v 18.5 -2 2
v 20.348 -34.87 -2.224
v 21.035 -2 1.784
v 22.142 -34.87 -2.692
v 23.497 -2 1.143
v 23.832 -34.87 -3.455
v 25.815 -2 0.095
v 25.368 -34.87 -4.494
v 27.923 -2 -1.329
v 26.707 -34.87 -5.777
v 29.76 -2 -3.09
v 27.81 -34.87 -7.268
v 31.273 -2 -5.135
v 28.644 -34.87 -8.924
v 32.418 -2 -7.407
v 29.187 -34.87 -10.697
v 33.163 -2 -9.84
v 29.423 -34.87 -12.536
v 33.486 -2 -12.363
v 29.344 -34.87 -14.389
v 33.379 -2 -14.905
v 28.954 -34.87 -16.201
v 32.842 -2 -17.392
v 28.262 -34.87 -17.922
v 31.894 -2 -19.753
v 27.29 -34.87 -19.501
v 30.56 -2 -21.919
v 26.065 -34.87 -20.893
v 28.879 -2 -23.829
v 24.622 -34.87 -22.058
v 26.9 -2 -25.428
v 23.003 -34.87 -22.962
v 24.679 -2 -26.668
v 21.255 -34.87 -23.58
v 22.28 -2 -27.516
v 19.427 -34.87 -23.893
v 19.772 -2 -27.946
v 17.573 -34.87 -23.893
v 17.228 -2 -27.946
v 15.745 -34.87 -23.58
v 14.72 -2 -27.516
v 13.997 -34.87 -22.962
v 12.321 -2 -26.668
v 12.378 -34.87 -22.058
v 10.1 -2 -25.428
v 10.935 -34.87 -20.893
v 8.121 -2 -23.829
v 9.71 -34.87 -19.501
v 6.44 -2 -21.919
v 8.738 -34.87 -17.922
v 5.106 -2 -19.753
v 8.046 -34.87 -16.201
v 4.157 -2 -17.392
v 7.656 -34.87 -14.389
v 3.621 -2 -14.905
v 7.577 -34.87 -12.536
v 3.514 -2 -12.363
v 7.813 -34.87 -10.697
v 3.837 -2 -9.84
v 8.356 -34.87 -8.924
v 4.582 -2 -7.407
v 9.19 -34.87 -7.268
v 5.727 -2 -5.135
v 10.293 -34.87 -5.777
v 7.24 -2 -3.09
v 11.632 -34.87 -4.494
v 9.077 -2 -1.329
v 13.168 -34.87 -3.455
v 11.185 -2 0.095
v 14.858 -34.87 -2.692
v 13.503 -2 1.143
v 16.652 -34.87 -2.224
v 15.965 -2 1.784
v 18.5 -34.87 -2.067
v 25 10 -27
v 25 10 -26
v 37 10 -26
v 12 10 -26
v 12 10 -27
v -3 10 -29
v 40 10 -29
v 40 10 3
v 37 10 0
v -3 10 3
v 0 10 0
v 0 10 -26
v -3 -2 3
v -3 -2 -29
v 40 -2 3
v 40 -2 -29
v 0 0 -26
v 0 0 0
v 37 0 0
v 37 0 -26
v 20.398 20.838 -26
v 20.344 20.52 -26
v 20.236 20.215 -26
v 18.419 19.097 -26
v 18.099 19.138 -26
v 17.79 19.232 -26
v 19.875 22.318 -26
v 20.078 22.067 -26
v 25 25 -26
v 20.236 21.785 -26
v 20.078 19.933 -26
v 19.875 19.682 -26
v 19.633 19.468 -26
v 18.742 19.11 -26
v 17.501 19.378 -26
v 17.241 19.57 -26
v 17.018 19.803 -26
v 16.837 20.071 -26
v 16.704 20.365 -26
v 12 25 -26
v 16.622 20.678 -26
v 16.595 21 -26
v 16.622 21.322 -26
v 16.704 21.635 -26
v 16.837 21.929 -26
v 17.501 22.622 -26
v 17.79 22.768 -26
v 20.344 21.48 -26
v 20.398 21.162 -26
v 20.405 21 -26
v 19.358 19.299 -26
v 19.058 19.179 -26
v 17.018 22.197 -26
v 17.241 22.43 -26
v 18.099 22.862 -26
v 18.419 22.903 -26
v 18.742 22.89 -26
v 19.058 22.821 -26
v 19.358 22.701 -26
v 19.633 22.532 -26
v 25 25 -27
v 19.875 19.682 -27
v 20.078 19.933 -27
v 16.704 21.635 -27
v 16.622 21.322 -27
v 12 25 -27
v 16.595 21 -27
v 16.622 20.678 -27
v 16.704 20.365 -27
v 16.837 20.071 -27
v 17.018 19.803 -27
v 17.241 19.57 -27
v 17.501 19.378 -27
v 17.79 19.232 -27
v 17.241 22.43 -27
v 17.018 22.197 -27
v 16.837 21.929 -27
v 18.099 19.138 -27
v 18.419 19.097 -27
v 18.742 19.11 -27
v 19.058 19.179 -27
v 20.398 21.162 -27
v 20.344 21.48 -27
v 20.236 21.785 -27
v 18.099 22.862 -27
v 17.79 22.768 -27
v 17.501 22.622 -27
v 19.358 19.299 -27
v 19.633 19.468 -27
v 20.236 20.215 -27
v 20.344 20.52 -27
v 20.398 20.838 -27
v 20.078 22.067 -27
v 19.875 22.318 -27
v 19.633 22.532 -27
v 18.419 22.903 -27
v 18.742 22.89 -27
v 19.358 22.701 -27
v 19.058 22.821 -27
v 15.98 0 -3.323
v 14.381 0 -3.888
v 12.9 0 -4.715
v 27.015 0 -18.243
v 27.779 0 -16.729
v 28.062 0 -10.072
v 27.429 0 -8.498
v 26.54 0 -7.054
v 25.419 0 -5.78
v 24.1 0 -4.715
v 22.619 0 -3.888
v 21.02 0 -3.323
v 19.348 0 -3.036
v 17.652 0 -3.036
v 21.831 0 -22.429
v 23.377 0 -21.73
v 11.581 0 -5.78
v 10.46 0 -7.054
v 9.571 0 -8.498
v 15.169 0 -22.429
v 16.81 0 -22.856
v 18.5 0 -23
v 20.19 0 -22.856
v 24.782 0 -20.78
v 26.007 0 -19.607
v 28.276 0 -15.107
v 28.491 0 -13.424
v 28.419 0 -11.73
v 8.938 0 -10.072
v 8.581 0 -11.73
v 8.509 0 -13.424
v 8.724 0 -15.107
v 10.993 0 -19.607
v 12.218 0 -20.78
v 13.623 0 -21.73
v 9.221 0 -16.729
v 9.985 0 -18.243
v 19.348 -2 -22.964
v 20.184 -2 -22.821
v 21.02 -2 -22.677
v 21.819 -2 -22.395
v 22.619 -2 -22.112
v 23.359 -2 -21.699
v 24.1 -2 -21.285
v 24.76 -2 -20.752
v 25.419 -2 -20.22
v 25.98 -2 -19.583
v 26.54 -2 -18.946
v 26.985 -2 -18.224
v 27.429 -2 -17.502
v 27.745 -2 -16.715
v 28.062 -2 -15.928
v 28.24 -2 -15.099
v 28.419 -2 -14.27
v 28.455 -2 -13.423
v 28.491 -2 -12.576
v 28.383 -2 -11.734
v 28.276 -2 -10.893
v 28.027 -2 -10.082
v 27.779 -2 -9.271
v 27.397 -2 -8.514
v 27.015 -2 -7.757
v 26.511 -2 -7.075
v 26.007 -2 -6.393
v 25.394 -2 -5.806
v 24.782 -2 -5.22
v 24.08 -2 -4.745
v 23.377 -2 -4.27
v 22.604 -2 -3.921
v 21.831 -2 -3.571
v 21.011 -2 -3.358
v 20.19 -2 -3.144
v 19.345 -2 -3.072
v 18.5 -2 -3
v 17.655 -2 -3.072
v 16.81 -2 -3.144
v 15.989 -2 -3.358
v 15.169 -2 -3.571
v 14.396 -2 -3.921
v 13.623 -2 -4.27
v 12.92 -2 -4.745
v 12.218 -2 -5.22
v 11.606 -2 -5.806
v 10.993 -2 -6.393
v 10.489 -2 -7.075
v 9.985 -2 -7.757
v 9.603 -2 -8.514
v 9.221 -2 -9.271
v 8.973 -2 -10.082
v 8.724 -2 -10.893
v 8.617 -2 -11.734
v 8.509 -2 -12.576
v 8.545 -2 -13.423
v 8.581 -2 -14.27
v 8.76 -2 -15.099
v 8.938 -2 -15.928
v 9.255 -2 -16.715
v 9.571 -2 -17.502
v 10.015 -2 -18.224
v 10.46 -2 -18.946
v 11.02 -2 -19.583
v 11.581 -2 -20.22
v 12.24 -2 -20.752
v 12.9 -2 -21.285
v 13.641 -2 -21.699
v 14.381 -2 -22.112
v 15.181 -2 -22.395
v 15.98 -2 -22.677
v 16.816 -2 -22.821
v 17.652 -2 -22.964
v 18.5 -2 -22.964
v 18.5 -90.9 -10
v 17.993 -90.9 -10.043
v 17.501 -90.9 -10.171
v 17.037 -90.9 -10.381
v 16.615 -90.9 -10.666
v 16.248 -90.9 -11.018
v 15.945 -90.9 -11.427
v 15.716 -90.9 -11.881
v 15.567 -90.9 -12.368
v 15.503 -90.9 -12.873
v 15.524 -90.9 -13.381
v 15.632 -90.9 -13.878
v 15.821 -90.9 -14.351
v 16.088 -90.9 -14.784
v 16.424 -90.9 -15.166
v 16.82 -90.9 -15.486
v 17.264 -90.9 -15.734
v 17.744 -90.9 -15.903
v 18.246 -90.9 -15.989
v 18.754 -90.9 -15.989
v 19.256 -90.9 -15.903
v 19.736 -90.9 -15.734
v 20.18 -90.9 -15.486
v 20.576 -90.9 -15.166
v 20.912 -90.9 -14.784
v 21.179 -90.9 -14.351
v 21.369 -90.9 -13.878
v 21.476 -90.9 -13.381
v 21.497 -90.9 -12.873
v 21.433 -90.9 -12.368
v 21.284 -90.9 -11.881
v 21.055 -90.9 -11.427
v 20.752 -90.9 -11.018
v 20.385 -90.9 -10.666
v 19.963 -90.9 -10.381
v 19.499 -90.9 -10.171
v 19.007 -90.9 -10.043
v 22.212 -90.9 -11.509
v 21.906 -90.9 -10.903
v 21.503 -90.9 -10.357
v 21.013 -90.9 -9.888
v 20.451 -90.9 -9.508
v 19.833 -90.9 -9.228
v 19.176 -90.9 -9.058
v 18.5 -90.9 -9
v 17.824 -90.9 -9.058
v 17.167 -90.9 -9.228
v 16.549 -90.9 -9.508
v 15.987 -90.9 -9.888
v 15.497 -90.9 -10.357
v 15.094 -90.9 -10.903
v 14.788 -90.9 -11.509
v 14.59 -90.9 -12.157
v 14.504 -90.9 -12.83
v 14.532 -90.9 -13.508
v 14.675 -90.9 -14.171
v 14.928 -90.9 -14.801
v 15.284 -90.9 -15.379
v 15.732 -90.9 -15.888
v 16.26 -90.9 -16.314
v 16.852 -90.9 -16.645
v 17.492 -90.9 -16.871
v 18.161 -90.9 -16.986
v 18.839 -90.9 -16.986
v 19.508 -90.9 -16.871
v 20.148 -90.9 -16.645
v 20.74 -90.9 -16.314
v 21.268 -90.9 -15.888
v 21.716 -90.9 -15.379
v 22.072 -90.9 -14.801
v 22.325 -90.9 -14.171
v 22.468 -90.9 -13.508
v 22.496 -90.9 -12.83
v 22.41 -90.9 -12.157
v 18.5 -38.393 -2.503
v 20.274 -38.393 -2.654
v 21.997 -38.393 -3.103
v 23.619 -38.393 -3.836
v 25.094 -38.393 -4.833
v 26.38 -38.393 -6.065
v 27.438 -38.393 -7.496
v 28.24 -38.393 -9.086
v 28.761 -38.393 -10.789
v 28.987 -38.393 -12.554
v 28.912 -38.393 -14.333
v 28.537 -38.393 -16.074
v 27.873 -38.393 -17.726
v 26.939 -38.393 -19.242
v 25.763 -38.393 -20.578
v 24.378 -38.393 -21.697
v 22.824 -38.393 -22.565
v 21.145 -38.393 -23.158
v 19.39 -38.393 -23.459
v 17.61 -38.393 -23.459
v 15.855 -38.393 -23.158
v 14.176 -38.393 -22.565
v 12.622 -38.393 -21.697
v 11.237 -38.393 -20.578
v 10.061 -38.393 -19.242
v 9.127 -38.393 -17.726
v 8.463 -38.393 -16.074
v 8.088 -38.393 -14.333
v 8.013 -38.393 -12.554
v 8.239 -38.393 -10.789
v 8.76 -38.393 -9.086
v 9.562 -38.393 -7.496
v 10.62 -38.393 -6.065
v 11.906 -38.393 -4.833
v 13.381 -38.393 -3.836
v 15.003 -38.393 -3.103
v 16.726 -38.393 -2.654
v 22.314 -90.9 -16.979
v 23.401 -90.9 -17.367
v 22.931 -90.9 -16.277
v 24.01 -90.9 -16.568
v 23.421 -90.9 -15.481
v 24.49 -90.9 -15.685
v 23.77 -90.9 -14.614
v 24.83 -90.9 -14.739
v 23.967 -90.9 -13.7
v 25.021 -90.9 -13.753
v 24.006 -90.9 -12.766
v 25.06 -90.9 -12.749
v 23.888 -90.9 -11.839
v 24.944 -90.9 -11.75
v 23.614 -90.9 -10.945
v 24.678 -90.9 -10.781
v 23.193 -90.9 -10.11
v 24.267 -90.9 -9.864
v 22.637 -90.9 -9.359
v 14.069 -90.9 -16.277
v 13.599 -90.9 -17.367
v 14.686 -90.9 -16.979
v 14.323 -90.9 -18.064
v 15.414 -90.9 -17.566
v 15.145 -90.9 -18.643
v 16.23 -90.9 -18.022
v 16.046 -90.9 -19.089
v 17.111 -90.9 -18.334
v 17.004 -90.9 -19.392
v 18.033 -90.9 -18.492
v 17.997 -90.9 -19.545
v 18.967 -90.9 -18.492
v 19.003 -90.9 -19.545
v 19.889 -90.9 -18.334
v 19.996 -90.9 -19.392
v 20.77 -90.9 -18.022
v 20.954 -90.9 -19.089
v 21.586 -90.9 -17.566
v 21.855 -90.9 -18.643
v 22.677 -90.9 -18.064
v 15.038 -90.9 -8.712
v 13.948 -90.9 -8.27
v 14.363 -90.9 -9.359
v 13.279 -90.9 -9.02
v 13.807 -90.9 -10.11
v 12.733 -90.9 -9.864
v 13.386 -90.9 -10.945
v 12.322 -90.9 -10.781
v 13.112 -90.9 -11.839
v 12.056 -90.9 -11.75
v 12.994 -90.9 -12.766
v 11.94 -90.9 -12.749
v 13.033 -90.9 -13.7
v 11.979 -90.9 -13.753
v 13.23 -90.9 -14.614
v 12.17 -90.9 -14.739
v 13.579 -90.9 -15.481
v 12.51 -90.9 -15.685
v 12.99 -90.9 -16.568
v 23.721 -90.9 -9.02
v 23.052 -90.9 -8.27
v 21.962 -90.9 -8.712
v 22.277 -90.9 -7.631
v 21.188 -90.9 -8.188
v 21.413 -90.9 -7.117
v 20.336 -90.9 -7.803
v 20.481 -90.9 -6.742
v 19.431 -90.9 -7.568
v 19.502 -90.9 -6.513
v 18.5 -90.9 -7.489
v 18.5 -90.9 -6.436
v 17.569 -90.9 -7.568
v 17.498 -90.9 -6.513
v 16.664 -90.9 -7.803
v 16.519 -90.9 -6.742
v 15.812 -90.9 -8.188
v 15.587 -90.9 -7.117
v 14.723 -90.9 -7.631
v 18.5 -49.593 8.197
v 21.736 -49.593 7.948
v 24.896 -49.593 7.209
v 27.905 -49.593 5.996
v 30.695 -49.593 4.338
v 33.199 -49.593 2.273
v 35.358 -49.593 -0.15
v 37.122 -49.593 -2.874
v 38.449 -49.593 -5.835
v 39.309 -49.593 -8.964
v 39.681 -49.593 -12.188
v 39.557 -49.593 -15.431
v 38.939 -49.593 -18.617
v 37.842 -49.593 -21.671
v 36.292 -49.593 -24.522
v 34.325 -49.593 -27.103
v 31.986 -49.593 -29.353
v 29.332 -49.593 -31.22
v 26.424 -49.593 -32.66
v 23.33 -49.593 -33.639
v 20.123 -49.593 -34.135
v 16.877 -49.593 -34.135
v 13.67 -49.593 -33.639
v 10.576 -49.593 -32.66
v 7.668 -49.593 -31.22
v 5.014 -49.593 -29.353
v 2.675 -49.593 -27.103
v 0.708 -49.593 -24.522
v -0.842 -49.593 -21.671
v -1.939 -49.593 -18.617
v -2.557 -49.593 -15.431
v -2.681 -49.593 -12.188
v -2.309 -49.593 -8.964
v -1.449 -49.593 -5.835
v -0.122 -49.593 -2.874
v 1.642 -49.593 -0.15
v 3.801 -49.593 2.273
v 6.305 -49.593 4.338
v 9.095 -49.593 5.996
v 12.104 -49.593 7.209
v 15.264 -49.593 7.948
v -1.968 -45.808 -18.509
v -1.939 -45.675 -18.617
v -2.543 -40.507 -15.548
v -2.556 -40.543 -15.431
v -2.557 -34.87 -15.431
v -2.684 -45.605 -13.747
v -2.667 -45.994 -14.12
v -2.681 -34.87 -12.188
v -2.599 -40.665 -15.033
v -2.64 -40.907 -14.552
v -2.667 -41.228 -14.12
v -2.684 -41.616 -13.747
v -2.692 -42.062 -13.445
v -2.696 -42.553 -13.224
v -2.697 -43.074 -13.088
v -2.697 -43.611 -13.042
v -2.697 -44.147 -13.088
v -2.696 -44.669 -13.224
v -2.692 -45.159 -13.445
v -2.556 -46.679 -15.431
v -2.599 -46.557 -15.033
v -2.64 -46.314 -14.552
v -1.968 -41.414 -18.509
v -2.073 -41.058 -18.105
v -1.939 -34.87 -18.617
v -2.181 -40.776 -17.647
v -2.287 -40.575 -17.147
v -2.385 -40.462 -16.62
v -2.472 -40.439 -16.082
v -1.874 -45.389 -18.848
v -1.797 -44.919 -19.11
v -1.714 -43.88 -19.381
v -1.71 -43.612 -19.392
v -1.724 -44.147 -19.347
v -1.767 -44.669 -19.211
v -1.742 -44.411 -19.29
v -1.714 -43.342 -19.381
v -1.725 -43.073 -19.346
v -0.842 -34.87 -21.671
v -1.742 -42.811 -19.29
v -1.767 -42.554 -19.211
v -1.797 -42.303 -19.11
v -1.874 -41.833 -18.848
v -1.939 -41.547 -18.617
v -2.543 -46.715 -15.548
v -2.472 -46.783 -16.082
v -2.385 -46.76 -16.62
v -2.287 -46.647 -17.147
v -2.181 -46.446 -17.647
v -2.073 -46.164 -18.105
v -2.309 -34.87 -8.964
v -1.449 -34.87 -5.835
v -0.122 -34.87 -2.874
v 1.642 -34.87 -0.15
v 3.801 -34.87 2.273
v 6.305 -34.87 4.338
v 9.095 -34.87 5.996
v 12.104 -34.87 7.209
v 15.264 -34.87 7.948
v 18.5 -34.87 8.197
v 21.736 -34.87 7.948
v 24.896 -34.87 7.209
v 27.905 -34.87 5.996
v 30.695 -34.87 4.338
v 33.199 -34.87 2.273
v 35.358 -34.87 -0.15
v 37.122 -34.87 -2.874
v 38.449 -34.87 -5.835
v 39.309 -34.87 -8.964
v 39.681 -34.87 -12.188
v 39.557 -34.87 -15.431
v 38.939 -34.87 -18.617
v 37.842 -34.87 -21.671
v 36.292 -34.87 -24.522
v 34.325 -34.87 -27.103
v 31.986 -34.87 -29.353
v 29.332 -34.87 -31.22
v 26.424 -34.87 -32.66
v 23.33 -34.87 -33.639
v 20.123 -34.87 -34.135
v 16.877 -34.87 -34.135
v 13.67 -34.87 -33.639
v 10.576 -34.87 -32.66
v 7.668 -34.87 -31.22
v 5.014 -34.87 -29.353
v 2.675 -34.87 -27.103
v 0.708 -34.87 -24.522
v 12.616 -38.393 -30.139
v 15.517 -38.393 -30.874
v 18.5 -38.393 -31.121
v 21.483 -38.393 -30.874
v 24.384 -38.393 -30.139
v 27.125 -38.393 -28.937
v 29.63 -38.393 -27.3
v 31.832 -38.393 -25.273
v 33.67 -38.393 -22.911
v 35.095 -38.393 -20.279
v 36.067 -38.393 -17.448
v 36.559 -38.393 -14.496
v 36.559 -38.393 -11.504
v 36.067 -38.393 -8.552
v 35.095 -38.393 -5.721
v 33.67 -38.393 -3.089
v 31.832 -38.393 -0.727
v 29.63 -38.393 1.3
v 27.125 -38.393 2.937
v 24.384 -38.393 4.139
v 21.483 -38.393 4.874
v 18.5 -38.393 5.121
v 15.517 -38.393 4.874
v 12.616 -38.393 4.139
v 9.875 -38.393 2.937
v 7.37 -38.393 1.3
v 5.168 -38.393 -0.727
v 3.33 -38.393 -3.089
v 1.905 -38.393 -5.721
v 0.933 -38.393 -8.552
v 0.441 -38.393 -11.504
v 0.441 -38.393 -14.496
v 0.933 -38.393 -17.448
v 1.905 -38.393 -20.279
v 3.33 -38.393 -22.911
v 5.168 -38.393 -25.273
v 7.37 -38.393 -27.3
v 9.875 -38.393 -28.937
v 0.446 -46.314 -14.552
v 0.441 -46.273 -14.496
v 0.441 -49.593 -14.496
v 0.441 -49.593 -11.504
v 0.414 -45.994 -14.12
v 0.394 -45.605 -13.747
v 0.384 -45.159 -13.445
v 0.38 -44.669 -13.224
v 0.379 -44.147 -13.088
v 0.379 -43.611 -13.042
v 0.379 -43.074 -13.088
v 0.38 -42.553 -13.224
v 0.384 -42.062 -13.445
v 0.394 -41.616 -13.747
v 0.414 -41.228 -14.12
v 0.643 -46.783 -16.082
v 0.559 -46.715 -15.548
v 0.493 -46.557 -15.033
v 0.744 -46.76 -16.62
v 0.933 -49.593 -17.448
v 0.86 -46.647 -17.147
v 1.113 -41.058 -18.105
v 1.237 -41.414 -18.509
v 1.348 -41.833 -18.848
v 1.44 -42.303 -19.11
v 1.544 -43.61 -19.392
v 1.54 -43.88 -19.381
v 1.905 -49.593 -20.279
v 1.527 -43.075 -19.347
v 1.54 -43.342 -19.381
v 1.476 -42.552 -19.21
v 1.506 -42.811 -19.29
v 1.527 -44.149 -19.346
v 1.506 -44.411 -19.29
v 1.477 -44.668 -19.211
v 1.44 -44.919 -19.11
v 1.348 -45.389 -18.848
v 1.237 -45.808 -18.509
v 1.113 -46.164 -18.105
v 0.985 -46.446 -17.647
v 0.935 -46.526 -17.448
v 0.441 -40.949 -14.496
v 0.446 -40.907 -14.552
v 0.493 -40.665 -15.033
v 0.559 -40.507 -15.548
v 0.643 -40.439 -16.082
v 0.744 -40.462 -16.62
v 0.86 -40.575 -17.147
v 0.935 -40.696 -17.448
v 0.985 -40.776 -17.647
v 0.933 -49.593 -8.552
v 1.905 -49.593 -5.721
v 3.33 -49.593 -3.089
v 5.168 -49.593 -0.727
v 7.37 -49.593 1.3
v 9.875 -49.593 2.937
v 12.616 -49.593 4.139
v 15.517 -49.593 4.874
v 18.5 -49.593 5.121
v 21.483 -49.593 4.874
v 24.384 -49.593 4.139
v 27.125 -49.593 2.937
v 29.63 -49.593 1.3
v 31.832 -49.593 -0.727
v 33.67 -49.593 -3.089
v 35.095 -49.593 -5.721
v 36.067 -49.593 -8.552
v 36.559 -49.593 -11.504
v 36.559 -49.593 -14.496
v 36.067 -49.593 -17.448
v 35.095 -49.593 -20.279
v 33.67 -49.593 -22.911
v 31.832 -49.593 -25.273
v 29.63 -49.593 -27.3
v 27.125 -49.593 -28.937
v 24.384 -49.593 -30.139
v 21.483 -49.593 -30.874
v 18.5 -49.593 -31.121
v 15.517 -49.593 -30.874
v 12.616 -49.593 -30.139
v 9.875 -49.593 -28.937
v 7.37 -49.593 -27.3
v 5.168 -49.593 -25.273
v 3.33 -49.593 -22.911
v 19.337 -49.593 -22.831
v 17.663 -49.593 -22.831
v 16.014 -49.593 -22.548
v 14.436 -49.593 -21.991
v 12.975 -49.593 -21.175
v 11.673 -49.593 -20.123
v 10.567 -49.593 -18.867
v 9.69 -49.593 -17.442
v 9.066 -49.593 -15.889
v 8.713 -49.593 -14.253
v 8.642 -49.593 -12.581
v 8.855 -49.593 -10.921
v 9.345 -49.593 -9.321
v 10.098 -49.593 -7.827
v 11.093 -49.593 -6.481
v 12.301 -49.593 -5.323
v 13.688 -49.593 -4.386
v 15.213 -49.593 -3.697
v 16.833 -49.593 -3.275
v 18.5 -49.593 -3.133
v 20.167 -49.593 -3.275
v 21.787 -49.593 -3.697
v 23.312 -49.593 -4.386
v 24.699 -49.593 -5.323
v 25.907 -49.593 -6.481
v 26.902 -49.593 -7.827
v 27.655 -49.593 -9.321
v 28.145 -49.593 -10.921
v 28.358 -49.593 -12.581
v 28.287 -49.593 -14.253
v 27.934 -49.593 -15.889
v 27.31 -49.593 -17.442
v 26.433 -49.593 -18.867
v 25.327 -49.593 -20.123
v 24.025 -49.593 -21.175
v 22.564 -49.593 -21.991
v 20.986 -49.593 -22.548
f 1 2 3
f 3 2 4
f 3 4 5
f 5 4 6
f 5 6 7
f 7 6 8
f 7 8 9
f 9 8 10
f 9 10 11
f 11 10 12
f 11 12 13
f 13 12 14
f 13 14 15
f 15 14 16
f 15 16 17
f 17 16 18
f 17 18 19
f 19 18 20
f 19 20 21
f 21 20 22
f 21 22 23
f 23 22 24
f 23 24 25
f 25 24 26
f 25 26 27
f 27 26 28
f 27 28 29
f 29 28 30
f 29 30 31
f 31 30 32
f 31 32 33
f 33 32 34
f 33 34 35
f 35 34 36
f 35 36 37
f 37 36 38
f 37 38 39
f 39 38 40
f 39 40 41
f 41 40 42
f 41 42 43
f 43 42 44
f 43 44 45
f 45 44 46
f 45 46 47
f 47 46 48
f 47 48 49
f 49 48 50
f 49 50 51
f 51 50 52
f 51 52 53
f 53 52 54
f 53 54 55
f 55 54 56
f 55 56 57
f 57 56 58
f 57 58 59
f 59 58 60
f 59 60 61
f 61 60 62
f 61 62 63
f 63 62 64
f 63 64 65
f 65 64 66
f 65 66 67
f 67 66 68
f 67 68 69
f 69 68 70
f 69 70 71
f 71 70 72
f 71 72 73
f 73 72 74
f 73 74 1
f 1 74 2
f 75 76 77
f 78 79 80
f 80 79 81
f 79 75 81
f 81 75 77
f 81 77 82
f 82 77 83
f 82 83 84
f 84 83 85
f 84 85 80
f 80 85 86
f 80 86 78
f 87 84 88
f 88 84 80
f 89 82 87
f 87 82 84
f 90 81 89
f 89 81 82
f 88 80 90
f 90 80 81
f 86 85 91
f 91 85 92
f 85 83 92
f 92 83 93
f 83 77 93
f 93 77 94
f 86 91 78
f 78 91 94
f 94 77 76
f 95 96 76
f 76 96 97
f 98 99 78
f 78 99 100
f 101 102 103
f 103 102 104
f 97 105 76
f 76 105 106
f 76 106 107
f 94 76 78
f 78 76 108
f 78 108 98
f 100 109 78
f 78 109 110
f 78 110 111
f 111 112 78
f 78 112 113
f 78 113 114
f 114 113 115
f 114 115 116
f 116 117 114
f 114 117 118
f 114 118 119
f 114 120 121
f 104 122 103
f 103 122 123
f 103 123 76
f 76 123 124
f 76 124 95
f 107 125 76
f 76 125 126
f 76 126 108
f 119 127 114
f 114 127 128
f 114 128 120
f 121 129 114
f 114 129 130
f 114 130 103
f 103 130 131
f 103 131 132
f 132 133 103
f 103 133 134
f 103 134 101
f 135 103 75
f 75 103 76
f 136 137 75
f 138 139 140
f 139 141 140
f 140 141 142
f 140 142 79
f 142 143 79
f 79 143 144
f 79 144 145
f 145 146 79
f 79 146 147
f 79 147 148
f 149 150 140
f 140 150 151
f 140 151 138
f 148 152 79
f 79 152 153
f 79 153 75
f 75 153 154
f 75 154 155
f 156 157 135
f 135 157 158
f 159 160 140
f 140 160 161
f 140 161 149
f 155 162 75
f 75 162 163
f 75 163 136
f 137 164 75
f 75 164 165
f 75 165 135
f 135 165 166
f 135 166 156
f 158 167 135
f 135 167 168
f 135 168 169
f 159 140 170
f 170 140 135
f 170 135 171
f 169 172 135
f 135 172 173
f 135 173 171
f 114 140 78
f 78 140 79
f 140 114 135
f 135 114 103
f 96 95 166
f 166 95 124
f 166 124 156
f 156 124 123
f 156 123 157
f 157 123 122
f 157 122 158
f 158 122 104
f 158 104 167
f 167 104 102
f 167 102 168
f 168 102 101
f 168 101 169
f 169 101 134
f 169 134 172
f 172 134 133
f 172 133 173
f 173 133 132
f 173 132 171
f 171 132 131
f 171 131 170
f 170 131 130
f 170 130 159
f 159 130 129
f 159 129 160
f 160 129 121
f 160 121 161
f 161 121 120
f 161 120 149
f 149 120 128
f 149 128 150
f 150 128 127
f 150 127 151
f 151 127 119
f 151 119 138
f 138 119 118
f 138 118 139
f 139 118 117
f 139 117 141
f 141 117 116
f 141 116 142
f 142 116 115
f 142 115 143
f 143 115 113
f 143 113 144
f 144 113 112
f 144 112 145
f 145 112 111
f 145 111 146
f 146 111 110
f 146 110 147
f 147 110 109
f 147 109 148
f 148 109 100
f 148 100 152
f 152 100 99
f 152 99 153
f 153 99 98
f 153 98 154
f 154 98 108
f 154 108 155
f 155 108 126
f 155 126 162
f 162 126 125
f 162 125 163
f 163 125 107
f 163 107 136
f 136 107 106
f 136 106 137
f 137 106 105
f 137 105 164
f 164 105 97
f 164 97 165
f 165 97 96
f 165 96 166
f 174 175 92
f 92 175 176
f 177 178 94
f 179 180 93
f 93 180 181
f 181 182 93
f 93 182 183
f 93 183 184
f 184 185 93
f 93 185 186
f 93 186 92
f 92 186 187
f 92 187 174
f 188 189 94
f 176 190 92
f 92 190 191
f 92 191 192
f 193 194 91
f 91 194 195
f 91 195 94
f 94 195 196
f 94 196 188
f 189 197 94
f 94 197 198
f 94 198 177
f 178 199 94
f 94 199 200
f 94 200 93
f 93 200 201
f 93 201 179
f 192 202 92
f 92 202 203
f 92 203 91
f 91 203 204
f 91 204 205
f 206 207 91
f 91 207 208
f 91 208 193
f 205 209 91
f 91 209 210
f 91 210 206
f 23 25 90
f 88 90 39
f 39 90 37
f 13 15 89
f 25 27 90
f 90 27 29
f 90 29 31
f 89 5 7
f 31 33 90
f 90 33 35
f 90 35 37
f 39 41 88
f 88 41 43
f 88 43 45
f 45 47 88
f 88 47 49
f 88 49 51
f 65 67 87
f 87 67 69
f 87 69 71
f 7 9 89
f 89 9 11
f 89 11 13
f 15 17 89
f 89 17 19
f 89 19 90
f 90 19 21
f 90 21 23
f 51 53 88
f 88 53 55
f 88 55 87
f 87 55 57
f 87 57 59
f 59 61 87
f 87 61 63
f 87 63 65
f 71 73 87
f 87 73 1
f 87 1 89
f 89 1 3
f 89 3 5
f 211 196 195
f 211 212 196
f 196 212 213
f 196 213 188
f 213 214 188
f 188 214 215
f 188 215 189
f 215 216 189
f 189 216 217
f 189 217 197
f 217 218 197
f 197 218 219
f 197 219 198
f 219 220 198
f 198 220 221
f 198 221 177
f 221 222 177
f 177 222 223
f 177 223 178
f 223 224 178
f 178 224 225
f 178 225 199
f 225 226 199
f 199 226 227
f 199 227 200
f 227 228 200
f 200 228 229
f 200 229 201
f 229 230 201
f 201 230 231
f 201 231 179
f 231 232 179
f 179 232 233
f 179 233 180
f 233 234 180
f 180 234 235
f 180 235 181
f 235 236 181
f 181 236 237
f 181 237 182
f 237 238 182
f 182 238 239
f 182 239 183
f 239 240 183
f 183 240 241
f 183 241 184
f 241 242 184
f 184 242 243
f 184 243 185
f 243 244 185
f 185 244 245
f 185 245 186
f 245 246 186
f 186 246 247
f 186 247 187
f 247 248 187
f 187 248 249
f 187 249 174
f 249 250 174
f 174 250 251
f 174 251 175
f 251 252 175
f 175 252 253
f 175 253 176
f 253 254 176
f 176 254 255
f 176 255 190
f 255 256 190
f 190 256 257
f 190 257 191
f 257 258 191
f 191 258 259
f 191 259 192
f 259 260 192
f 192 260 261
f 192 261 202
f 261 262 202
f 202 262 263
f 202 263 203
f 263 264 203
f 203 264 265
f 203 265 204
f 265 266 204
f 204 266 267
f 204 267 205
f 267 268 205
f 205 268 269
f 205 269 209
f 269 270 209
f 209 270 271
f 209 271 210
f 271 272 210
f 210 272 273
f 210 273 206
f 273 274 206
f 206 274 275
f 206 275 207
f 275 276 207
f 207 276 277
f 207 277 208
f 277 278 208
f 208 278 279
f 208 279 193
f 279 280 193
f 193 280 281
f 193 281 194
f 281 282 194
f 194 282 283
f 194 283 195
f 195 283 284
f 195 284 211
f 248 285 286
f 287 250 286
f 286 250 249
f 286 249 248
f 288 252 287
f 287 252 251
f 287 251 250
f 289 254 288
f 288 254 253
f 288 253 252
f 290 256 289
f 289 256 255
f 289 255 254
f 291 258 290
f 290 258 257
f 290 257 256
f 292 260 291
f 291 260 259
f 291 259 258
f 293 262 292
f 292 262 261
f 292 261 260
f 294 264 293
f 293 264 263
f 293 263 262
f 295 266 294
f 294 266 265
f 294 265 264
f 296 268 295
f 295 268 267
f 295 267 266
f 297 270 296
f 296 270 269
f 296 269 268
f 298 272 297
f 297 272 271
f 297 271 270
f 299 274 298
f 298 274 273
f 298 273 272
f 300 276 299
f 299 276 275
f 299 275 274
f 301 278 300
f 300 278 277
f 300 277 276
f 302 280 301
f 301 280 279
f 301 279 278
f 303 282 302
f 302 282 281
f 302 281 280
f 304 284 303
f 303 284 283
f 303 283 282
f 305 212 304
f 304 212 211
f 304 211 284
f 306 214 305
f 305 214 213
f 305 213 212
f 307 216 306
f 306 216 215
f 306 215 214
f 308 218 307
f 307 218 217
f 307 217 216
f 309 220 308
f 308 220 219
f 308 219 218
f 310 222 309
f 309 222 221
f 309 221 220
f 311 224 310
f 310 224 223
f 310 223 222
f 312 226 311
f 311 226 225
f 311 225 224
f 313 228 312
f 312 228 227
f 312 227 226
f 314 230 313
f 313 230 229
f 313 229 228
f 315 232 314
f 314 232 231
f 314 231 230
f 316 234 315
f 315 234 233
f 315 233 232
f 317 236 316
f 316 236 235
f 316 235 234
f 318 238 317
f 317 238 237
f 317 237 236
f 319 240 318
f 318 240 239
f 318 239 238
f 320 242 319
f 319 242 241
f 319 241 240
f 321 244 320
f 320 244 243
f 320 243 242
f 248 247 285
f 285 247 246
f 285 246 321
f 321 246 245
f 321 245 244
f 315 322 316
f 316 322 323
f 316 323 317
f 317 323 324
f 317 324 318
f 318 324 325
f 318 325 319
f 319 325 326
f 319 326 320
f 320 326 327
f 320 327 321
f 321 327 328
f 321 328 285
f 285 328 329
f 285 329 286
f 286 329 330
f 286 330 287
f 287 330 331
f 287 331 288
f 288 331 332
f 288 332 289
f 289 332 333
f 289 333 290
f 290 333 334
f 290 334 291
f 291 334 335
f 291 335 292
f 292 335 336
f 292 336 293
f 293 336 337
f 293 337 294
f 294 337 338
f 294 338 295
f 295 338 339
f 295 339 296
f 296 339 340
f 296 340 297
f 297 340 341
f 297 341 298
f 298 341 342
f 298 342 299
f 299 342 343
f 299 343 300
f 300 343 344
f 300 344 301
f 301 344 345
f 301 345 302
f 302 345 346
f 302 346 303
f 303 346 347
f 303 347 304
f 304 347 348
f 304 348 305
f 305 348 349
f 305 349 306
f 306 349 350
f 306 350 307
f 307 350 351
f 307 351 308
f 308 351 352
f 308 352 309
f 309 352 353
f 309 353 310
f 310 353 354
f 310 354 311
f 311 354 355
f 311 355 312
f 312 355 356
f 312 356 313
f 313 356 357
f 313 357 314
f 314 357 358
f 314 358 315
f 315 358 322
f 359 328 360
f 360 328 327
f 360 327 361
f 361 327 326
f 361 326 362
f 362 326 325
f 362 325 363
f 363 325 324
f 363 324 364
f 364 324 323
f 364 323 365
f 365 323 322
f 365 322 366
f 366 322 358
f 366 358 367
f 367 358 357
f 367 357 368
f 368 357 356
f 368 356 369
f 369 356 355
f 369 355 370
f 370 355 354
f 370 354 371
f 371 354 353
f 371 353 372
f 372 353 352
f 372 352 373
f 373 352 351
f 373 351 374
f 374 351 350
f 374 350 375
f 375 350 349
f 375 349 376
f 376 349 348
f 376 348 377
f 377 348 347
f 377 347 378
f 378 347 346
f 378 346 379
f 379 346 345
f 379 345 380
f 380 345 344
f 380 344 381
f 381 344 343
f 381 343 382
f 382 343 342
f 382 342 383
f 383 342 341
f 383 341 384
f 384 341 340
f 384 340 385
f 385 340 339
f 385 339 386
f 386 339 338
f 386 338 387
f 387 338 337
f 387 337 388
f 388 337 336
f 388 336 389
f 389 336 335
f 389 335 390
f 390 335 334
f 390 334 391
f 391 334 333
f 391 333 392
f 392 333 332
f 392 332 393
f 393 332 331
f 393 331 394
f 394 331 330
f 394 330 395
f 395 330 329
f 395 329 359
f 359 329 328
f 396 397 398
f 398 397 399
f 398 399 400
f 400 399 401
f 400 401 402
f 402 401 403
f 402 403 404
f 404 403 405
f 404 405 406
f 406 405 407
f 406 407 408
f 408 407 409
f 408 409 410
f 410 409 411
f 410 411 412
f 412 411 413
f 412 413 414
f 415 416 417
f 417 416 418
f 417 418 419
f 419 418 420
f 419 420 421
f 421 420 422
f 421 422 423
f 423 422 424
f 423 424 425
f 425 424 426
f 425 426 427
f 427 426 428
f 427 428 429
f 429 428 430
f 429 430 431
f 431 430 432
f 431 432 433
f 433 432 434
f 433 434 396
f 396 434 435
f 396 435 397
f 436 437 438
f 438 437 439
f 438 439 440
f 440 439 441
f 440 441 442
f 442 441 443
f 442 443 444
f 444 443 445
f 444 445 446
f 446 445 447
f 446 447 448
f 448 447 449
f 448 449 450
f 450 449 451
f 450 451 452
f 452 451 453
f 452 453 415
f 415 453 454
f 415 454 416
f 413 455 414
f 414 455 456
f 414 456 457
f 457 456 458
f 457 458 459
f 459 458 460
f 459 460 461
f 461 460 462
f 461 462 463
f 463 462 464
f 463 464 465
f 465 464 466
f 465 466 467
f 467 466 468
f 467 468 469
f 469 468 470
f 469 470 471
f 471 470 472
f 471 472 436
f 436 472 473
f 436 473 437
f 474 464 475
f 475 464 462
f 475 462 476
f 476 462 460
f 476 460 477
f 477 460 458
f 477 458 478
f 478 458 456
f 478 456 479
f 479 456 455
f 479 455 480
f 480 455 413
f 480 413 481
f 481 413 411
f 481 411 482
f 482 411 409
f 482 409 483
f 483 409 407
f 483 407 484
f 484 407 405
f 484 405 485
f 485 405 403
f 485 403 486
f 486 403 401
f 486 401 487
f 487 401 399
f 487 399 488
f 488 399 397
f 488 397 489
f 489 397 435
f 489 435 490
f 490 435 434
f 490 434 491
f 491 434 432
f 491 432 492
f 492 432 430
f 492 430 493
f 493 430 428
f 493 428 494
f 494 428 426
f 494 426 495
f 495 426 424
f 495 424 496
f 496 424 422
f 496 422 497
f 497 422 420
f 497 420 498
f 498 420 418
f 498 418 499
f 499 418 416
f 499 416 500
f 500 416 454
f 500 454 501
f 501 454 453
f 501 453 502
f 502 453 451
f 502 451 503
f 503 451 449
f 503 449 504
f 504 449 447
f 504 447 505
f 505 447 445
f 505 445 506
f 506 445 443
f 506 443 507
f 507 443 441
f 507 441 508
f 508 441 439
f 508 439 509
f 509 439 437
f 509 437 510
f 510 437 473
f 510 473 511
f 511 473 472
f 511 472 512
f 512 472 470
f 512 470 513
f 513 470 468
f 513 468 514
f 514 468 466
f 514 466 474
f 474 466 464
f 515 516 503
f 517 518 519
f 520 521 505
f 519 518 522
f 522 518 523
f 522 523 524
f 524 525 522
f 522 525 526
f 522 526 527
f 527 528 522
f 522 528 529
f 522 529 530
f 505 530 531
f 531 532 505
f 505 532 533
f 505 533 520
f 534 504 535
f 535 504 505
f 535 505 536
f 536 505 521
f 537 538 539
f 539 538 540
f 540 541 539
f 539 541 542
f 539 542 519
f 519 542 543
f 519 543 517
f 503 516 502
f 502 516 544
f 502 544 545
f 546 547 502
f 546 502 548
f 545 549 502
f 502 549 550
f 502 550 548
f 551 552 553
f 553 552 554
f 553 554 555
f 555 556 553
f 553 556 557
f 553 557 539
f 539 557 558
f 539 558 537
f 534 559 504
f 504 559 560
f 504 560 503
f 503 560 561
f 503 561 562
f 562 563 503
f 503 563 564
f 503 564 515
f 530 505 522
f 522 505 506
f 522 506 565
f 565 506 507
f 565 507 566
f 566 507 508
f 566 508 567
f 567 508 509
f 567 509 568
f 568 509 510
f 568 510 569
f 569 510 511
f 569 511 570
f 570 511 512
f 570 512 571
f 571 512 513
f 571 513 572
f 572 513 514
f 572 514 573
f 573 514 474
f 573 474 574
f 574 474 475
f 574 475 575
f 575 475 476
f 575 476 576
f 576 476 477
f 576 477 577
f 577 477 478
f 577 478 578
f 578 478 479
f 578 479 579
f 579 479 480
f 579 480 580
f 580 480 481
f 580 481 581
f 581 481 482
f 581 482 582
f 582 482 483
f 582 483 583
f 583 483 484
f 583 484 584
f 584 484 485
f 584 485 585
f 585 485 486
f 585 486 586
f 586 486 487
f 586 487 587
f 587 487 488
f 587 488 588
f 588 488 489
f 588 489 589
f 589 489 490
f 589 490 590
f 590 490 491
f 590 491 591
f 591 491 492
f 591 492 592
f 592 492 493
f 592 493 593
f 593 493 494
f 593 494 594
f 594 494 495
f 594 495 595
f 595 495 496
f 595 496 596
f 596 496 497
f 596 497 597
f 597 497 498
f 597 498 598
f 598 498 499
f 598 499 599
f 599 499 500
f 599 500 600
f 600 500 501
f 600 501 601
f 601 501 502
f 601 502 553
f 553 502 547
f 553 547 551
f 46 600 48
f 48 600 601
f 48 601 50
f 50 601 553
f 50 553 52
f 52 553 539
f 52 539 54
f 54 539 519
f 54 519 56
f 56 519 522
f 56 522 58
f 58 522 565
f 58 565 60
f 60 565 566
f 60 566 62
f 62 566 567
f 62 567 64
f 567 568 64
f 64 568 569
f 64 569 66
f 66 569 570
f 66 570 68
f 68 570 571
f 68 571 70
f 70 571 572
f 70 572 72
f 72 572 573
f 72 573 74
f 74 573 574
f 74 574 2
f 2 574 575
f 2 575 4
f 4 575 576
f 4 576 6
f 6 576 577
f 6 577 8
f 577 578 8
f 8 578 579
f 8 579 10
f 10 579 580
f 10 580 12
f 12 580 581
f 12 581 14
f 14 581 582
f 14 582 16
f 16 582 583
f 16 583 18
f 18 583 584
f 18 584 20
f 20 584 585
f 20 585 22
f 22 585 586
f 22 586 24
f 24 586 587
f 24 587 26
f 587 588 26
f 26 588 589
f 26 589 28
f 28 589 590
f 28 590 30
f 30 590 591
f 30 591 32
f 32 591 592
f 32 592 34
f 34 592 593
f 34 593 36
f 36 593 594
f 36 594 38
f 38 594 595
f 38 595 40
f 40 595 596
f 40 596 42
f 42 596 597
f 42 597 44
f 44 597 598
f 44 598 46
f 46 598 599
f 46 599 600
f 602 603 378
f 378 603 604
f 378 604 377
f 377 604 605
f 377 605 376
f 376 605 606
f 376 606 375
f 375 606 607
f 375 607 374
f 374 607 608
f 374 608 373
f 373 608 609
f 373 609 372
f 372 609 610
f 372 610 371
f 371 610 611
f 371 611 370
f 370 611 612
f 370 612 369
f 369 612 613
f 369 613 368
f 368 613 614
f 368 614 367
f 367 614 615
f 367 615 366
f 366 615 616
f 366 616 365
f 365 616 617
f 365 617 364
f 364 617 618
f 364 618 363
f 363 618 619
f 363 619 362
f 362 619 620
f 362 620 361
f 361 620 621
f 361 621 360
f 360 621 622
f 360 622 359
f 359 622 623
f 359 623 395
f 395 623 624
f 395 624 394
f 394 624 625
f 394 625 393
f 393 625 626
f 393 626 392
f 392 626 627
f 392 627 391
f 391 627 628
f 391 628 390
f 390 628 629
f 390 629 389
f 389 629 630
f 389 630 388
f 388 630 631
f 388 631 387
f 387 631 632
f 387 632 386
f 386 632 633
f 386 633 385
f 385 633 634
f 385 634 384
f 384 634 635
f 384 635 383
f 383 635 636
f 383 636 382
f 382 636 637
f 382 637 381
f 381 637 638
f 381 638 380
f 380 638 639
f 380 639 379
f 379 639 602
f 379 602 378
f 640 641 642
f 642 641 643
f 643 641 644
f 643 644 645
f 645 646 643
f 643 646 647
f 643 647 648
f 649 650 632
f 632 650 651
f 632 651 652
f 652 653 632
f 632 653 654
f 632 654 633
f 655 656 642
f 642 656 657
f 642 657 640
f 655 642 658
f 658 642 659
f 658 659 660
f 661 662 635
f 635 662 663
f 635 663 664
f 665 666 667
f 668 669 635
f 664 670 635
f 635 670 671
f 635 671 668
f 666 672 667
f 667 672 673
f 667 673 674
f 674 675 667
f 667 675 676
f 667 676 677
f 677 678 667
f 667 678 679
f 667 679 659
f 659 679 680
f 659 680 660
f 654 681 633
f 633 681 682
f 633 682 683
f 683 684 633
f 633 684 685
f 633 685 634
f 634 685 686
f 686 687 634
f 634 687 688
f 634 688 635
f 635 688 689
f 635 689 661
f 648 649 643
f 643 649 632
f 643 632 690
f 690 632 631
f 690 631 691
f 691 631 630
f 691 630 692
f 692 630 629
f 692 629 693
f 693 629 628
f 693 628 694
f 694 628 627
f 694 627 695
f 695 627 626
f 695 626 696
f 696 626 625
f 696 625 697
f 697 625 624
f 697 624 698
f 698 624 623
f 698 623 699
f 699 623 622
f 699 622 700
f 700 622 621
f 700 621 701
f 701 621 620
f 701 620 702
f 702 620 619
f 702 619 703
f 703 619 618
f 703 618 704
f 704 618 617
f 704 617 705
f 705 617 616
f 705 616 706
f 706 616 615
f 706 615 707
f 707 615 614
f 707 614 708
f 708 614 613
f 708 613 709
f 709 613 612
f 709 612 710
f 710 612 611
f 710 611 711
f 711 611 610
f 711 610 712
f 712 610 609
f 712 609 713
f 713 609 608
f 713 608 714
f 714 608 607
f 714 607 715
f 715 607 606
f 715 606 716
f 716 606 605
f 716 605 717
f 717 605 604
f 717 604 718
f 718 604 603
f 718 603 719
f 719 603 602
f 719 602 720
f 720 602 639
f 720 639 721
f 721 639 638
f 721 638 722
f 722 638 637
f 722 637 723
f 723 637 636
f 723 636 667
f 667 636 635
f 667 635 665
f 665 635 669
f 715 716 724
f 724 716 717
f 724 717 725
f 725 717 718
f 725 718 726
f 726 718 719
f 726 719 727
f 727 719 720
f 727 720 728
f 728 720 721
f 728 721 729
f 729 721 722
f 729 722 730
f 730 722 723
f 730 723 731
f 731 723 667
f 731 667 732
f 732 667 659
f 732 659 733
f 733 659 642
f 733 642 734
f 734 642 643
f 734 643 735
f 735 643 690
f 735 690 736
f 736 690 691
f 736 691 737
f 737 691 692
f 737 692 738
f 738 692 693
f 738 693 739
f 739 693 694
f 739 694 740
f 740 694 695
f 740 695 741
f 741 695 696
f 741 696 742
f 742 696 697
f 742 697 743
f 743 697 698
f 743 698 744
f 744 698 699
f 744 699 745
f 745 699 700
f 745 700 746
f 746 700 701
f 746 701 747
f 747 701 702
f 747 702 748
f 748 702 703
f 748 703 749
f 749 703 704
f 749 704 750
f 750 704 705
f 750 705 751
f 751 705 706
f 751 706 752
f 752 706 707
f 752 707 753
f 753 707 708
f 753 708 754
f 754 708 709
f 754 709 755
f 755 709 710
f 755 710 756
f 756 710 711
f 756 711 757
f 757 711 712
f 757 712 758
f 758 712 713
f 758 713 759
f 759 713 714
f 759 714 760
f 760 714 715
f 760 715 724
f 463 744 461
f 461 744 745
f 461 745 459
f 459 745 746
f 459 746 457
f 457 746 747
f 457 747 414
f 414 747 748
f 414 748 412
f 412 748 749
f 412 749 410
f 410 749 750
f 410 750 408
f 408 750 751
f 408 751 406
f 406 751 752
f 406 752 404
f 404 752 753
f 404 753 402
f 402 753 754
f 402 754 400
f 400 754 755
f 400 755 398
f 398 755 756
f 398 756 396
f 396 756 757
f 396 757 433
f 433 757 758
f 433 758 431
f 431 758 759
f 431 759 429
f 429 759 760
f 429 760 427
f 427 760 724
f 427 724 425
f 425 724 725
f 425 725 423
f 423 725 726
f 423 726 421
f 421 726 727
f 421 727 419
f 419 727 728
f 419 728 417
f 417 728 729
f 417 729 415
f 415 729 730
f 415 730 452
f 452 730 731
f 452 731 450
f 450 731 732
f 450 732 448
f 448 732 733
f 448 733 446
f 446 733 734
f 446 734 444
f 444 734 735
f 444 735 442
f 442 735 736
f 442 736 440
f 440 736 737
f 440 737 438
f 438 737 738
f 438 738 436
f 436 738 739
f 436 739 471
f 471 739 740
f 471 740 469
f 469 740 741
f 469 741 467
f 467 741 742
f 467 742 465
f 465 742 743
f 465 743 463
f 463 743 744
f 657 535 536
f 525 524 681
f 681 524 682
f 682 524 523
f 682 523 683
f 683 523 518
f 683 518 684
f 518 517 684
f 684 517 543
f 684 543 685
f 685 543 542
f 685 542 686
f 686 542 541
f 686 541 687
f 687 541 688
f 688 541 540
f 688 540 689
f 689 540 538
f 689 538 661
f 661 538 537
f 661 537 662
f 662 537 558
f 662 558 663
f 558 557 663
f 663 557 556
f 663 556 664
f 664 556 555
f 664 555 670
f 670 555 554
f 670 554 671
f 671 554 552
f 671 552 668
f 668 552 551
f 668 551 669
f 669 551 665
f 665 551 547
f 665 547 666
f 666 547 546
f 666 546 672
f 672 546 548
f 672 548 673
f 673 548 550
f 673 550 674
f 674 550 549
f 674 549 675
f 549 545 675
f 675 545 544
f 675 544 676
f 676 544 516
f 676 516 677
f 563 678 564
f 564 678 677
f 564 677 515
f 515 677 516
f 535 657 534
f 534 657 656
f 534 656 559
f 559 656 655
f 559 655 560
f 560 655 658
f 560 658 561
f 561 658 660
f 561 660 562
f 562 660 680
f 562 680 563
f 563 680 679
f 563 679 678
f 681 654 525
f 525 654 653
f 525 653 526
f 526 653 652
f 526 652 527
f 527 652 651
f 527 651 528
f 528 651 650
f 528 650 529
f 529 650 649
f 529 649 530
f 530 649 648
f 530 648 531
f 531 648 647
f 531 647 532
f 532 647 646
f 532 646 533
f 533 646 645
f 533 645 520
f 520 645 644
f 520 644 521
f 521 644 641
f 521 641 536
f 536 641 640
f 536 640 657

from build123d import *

# Parameters (mm, degrees)
SKETCH1_W           = 43
SKETCH1_H           = 32
SKETCH1_W_2         = 37
SKETCH1_H_2         = 26
BOSS_EXTRUDE1_DEPTH = 10
SKETCH2_W           = 13
SKETCH2_H           = 1
BOSS_EXTRUDE2_DEPTH = 15
CUT_EXTRUDE1_REACH  = 32
SKETCH3_R           = 1.905
SKETCH4_W           = 43
SKETCH4_H           = 32
BOSS_EXTRUDE3_DEPTH = 2
CUT_EXTRUDE2_REACH  = 29
SKETCH5_R           = 10
CUT_EXTRUDE3_START  = 10
SKETCH11_R          = 3.175
CUT_EXTRUDE3_DEPTH  = 15


with BuildPart() as part:
    # Sketch1 → Boss-Extrude1 (new body)
    with BuildSketch(Plane(origin=(0, 0, 0), x_dir=(1, 0, 0), z_dir=(0, 1, 0))):
        with Locations((18.5, 13)):
            Rectangle(SKETCH1_W, SKETCH1_H)
        with Locations((18.5, 13)):
            Rectangle(SKETCH1_W_2, SKETCH1_H_2, mode=Mode.SUBTRACT)
    extrude(amount=BOSS_EXTRUDE1_DEPTH)

    # Sketch2 → Boss-Extrude2 (add)
    with BuildSketch(Plane(origin=(0, 10, 0), x_dir=(1, 0, 0), z_dir=(0, 1, 0))):
        with Locations((18.5, 26.5)):
            Rectangle(SKETCH2_W, SKETCH2_H)
    extrude(amount=BOSS_EXTRUDE2_DEPTH)

    # Sketch3 → Cut-Extrude1 (cut, up to next)
    with BuildSketch(Plane(origin=(0, 0, -27), x_dir=(-1, 0, 0), z_dir=(0, 0, -1)), mode=Mode.PRIVATE) as cut_extrude1_sk1:
        with Locations((-18.5, 21)):
            Circle(SKETCH3_R)
    cut_extrude1_tool1 = extrude(cut_extrude1_sk1.sketch, amount=-CUT_EXTRUDE1_REACH, mode=Mode.PRIVATE) & part.part
    add(cut_extrude1_tool1.solids().sort_by_distance((18.5, 21, -27))[0], mode=Mode.SUBTRACT)

    # Sketch4 → Boss-Extrude3 (add)
    with BuildSketch(Plane.XZ):
        with Locations((18.5, -13)):
            Rectangle(SKETCH4_W, SKETCH4_H)
    extrude(amount=BOSS_EXTRUDE3_DEPTH)

    # Sketch5 → Cut-Extrude2 (cut, up to next)
    with BuildSketch(Plane.XZ.offset(2), mode=Mode.PRIVATE) as cut_extrude2_sk1:
        with Locations((18.5, -13)):
            Circle(SKETCH5_R)
    cut_extrude2_tool1 = extrude(cut_extrude2_sk1.sketch, amount=-CUT_EXTRUDE2_REACH, mode=Mode.PRIVATE) & part.part
    add(cut_extrude2_tool1.solids().sort_by_distance((18.5, -2, -13))[0], mode=Mode.SUBTRACT)

    # Sketch9 → Revolve1 (revolve)
    with BuildSketch(Plane.XY.offset(-13)):
        Polygon((28.5, -2), (21.5, -90.9), (22.5, -90.9), (33.5, -2), align=None)
    revolve(axis=Axis((18.5, -2, -13), (0, -1, 0)))

    # Sketch10 → Revolve2 (revolve)
    with BuildSketch(Plane.XY.offset(-13)):
        Polygon((12.988560941, -90.9), (8.633183769, -49.593045745), (0.378993359, -49.593045745), (0.378993359, -38.393027141), (8.003074224, -38.393027141), (7.567144174, -34.86991973), (-2.696890299, -34.86991973), (-2.696890299, -49.593045745), (11.935583953, -90.9), align=None)
    revolve(axis=Axis((18.5, -2, -13), (0, -1, 0)))

    # Sketch11 → Cut-Extrude3 (cut)
    with BuildSketch(Plane.ZY.offset(3).offset(CUT_EXTRUDE3_START)):
        with Locations((-16.217164304, -43.610889084)):
            Circle(SKETCH11_R)
    extrude(amount=-CUT_EXTRUDE3_DEPTH, mode=Mode.SUBTRACT)


solid = part.part
